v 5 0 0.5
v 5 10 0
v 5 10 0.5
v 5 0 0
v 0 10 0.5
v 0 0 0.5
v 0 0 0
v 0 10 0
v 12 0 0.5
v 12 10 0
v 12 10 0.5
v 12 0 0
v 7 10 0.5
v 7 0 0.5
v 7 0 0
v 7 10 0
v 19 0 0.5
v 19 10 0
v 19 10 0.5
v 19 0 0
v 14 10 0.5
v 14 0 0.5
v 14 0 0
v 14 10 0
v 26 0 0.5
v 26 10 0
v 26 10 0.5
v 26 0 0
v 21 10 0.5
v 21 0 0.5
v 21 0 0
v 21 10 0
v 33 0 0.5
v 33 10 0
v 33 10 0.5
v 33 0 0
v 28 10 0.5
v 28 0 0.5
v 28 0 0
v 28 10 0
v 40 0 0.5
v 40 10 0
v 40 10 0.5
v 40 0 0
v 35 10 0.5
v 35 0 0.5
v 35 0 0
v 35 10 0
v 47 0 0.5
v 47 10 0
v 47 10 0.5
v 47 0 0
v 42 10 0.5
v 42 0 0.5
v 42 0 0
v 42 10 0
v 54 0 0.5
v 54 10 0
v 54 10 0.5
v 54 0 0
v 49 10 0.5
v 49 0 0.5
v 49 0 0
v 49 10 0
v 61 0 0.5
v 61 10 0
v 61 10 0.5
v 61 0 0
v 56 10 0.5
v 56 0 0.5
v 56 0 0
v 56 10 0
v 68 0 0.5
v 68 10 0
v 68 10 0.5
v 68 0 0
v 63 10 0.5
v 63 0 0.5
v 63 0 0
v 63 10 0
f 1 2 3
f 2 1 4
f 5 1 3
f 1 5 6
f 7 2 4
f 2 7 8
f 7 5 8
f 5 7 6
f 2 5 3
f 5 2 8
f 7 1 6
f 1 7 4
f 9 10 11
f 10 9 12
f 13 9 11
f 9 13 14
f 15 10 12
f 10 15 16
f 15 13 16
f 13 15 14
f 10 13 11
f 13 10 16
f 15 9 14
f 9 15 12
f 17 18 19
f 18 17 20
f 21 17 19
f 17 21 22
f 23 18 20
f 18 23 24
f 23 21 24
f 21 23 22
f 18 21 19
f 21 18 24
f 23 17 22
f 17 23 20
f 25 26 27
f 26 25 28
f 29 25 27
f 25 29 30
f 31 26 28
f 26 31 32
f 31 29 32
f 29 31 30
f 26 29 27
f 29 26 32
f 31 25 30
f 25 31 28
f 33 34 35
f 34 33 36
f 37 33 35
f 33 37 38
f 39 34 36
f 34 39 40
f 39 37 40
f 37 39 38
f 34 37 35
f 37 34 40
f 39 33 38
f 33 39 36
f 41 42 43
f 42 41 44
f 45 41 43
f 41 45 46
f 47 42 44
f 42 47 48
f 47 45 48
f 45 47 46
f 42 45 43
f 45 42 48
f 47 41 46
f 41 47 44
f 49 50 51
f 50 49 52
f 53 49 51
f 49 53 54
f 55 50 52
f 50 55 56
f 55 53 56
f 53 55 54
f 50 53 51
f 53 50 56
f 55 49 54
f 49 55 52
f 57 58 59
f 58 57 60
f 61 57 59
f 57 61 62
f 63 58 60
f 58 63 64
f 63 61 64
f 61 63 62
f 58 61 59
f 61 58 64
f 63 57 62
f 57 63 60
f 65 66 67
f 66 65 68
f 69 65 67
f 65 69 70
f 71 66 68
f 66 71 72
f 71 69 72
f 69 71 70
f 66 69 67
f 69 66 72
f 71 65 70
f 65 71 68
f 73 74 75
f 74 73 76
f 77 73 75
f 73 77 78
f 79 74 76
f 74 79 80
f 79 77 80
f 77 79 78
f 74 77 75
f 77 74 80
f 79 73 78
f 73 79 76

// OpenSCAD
// Parameters for the woven pattern
num_weaves = 10;
weave_height = 10;
weave_width = 5;
weave_spacing = 2;
knot_width = 0.5;
knot_height = 2;
knot_offset = 2;

module weave(x, y) {
  translate([x, y, 0])
  cube([weave_width, weave_height, knot_width]);
}

module woven_pattern() {
  for (i = [0:num_weaves - 1]) {
    weave(i * (weave_width + weave_spacing), 0);
  }
}

woven_pattern();
